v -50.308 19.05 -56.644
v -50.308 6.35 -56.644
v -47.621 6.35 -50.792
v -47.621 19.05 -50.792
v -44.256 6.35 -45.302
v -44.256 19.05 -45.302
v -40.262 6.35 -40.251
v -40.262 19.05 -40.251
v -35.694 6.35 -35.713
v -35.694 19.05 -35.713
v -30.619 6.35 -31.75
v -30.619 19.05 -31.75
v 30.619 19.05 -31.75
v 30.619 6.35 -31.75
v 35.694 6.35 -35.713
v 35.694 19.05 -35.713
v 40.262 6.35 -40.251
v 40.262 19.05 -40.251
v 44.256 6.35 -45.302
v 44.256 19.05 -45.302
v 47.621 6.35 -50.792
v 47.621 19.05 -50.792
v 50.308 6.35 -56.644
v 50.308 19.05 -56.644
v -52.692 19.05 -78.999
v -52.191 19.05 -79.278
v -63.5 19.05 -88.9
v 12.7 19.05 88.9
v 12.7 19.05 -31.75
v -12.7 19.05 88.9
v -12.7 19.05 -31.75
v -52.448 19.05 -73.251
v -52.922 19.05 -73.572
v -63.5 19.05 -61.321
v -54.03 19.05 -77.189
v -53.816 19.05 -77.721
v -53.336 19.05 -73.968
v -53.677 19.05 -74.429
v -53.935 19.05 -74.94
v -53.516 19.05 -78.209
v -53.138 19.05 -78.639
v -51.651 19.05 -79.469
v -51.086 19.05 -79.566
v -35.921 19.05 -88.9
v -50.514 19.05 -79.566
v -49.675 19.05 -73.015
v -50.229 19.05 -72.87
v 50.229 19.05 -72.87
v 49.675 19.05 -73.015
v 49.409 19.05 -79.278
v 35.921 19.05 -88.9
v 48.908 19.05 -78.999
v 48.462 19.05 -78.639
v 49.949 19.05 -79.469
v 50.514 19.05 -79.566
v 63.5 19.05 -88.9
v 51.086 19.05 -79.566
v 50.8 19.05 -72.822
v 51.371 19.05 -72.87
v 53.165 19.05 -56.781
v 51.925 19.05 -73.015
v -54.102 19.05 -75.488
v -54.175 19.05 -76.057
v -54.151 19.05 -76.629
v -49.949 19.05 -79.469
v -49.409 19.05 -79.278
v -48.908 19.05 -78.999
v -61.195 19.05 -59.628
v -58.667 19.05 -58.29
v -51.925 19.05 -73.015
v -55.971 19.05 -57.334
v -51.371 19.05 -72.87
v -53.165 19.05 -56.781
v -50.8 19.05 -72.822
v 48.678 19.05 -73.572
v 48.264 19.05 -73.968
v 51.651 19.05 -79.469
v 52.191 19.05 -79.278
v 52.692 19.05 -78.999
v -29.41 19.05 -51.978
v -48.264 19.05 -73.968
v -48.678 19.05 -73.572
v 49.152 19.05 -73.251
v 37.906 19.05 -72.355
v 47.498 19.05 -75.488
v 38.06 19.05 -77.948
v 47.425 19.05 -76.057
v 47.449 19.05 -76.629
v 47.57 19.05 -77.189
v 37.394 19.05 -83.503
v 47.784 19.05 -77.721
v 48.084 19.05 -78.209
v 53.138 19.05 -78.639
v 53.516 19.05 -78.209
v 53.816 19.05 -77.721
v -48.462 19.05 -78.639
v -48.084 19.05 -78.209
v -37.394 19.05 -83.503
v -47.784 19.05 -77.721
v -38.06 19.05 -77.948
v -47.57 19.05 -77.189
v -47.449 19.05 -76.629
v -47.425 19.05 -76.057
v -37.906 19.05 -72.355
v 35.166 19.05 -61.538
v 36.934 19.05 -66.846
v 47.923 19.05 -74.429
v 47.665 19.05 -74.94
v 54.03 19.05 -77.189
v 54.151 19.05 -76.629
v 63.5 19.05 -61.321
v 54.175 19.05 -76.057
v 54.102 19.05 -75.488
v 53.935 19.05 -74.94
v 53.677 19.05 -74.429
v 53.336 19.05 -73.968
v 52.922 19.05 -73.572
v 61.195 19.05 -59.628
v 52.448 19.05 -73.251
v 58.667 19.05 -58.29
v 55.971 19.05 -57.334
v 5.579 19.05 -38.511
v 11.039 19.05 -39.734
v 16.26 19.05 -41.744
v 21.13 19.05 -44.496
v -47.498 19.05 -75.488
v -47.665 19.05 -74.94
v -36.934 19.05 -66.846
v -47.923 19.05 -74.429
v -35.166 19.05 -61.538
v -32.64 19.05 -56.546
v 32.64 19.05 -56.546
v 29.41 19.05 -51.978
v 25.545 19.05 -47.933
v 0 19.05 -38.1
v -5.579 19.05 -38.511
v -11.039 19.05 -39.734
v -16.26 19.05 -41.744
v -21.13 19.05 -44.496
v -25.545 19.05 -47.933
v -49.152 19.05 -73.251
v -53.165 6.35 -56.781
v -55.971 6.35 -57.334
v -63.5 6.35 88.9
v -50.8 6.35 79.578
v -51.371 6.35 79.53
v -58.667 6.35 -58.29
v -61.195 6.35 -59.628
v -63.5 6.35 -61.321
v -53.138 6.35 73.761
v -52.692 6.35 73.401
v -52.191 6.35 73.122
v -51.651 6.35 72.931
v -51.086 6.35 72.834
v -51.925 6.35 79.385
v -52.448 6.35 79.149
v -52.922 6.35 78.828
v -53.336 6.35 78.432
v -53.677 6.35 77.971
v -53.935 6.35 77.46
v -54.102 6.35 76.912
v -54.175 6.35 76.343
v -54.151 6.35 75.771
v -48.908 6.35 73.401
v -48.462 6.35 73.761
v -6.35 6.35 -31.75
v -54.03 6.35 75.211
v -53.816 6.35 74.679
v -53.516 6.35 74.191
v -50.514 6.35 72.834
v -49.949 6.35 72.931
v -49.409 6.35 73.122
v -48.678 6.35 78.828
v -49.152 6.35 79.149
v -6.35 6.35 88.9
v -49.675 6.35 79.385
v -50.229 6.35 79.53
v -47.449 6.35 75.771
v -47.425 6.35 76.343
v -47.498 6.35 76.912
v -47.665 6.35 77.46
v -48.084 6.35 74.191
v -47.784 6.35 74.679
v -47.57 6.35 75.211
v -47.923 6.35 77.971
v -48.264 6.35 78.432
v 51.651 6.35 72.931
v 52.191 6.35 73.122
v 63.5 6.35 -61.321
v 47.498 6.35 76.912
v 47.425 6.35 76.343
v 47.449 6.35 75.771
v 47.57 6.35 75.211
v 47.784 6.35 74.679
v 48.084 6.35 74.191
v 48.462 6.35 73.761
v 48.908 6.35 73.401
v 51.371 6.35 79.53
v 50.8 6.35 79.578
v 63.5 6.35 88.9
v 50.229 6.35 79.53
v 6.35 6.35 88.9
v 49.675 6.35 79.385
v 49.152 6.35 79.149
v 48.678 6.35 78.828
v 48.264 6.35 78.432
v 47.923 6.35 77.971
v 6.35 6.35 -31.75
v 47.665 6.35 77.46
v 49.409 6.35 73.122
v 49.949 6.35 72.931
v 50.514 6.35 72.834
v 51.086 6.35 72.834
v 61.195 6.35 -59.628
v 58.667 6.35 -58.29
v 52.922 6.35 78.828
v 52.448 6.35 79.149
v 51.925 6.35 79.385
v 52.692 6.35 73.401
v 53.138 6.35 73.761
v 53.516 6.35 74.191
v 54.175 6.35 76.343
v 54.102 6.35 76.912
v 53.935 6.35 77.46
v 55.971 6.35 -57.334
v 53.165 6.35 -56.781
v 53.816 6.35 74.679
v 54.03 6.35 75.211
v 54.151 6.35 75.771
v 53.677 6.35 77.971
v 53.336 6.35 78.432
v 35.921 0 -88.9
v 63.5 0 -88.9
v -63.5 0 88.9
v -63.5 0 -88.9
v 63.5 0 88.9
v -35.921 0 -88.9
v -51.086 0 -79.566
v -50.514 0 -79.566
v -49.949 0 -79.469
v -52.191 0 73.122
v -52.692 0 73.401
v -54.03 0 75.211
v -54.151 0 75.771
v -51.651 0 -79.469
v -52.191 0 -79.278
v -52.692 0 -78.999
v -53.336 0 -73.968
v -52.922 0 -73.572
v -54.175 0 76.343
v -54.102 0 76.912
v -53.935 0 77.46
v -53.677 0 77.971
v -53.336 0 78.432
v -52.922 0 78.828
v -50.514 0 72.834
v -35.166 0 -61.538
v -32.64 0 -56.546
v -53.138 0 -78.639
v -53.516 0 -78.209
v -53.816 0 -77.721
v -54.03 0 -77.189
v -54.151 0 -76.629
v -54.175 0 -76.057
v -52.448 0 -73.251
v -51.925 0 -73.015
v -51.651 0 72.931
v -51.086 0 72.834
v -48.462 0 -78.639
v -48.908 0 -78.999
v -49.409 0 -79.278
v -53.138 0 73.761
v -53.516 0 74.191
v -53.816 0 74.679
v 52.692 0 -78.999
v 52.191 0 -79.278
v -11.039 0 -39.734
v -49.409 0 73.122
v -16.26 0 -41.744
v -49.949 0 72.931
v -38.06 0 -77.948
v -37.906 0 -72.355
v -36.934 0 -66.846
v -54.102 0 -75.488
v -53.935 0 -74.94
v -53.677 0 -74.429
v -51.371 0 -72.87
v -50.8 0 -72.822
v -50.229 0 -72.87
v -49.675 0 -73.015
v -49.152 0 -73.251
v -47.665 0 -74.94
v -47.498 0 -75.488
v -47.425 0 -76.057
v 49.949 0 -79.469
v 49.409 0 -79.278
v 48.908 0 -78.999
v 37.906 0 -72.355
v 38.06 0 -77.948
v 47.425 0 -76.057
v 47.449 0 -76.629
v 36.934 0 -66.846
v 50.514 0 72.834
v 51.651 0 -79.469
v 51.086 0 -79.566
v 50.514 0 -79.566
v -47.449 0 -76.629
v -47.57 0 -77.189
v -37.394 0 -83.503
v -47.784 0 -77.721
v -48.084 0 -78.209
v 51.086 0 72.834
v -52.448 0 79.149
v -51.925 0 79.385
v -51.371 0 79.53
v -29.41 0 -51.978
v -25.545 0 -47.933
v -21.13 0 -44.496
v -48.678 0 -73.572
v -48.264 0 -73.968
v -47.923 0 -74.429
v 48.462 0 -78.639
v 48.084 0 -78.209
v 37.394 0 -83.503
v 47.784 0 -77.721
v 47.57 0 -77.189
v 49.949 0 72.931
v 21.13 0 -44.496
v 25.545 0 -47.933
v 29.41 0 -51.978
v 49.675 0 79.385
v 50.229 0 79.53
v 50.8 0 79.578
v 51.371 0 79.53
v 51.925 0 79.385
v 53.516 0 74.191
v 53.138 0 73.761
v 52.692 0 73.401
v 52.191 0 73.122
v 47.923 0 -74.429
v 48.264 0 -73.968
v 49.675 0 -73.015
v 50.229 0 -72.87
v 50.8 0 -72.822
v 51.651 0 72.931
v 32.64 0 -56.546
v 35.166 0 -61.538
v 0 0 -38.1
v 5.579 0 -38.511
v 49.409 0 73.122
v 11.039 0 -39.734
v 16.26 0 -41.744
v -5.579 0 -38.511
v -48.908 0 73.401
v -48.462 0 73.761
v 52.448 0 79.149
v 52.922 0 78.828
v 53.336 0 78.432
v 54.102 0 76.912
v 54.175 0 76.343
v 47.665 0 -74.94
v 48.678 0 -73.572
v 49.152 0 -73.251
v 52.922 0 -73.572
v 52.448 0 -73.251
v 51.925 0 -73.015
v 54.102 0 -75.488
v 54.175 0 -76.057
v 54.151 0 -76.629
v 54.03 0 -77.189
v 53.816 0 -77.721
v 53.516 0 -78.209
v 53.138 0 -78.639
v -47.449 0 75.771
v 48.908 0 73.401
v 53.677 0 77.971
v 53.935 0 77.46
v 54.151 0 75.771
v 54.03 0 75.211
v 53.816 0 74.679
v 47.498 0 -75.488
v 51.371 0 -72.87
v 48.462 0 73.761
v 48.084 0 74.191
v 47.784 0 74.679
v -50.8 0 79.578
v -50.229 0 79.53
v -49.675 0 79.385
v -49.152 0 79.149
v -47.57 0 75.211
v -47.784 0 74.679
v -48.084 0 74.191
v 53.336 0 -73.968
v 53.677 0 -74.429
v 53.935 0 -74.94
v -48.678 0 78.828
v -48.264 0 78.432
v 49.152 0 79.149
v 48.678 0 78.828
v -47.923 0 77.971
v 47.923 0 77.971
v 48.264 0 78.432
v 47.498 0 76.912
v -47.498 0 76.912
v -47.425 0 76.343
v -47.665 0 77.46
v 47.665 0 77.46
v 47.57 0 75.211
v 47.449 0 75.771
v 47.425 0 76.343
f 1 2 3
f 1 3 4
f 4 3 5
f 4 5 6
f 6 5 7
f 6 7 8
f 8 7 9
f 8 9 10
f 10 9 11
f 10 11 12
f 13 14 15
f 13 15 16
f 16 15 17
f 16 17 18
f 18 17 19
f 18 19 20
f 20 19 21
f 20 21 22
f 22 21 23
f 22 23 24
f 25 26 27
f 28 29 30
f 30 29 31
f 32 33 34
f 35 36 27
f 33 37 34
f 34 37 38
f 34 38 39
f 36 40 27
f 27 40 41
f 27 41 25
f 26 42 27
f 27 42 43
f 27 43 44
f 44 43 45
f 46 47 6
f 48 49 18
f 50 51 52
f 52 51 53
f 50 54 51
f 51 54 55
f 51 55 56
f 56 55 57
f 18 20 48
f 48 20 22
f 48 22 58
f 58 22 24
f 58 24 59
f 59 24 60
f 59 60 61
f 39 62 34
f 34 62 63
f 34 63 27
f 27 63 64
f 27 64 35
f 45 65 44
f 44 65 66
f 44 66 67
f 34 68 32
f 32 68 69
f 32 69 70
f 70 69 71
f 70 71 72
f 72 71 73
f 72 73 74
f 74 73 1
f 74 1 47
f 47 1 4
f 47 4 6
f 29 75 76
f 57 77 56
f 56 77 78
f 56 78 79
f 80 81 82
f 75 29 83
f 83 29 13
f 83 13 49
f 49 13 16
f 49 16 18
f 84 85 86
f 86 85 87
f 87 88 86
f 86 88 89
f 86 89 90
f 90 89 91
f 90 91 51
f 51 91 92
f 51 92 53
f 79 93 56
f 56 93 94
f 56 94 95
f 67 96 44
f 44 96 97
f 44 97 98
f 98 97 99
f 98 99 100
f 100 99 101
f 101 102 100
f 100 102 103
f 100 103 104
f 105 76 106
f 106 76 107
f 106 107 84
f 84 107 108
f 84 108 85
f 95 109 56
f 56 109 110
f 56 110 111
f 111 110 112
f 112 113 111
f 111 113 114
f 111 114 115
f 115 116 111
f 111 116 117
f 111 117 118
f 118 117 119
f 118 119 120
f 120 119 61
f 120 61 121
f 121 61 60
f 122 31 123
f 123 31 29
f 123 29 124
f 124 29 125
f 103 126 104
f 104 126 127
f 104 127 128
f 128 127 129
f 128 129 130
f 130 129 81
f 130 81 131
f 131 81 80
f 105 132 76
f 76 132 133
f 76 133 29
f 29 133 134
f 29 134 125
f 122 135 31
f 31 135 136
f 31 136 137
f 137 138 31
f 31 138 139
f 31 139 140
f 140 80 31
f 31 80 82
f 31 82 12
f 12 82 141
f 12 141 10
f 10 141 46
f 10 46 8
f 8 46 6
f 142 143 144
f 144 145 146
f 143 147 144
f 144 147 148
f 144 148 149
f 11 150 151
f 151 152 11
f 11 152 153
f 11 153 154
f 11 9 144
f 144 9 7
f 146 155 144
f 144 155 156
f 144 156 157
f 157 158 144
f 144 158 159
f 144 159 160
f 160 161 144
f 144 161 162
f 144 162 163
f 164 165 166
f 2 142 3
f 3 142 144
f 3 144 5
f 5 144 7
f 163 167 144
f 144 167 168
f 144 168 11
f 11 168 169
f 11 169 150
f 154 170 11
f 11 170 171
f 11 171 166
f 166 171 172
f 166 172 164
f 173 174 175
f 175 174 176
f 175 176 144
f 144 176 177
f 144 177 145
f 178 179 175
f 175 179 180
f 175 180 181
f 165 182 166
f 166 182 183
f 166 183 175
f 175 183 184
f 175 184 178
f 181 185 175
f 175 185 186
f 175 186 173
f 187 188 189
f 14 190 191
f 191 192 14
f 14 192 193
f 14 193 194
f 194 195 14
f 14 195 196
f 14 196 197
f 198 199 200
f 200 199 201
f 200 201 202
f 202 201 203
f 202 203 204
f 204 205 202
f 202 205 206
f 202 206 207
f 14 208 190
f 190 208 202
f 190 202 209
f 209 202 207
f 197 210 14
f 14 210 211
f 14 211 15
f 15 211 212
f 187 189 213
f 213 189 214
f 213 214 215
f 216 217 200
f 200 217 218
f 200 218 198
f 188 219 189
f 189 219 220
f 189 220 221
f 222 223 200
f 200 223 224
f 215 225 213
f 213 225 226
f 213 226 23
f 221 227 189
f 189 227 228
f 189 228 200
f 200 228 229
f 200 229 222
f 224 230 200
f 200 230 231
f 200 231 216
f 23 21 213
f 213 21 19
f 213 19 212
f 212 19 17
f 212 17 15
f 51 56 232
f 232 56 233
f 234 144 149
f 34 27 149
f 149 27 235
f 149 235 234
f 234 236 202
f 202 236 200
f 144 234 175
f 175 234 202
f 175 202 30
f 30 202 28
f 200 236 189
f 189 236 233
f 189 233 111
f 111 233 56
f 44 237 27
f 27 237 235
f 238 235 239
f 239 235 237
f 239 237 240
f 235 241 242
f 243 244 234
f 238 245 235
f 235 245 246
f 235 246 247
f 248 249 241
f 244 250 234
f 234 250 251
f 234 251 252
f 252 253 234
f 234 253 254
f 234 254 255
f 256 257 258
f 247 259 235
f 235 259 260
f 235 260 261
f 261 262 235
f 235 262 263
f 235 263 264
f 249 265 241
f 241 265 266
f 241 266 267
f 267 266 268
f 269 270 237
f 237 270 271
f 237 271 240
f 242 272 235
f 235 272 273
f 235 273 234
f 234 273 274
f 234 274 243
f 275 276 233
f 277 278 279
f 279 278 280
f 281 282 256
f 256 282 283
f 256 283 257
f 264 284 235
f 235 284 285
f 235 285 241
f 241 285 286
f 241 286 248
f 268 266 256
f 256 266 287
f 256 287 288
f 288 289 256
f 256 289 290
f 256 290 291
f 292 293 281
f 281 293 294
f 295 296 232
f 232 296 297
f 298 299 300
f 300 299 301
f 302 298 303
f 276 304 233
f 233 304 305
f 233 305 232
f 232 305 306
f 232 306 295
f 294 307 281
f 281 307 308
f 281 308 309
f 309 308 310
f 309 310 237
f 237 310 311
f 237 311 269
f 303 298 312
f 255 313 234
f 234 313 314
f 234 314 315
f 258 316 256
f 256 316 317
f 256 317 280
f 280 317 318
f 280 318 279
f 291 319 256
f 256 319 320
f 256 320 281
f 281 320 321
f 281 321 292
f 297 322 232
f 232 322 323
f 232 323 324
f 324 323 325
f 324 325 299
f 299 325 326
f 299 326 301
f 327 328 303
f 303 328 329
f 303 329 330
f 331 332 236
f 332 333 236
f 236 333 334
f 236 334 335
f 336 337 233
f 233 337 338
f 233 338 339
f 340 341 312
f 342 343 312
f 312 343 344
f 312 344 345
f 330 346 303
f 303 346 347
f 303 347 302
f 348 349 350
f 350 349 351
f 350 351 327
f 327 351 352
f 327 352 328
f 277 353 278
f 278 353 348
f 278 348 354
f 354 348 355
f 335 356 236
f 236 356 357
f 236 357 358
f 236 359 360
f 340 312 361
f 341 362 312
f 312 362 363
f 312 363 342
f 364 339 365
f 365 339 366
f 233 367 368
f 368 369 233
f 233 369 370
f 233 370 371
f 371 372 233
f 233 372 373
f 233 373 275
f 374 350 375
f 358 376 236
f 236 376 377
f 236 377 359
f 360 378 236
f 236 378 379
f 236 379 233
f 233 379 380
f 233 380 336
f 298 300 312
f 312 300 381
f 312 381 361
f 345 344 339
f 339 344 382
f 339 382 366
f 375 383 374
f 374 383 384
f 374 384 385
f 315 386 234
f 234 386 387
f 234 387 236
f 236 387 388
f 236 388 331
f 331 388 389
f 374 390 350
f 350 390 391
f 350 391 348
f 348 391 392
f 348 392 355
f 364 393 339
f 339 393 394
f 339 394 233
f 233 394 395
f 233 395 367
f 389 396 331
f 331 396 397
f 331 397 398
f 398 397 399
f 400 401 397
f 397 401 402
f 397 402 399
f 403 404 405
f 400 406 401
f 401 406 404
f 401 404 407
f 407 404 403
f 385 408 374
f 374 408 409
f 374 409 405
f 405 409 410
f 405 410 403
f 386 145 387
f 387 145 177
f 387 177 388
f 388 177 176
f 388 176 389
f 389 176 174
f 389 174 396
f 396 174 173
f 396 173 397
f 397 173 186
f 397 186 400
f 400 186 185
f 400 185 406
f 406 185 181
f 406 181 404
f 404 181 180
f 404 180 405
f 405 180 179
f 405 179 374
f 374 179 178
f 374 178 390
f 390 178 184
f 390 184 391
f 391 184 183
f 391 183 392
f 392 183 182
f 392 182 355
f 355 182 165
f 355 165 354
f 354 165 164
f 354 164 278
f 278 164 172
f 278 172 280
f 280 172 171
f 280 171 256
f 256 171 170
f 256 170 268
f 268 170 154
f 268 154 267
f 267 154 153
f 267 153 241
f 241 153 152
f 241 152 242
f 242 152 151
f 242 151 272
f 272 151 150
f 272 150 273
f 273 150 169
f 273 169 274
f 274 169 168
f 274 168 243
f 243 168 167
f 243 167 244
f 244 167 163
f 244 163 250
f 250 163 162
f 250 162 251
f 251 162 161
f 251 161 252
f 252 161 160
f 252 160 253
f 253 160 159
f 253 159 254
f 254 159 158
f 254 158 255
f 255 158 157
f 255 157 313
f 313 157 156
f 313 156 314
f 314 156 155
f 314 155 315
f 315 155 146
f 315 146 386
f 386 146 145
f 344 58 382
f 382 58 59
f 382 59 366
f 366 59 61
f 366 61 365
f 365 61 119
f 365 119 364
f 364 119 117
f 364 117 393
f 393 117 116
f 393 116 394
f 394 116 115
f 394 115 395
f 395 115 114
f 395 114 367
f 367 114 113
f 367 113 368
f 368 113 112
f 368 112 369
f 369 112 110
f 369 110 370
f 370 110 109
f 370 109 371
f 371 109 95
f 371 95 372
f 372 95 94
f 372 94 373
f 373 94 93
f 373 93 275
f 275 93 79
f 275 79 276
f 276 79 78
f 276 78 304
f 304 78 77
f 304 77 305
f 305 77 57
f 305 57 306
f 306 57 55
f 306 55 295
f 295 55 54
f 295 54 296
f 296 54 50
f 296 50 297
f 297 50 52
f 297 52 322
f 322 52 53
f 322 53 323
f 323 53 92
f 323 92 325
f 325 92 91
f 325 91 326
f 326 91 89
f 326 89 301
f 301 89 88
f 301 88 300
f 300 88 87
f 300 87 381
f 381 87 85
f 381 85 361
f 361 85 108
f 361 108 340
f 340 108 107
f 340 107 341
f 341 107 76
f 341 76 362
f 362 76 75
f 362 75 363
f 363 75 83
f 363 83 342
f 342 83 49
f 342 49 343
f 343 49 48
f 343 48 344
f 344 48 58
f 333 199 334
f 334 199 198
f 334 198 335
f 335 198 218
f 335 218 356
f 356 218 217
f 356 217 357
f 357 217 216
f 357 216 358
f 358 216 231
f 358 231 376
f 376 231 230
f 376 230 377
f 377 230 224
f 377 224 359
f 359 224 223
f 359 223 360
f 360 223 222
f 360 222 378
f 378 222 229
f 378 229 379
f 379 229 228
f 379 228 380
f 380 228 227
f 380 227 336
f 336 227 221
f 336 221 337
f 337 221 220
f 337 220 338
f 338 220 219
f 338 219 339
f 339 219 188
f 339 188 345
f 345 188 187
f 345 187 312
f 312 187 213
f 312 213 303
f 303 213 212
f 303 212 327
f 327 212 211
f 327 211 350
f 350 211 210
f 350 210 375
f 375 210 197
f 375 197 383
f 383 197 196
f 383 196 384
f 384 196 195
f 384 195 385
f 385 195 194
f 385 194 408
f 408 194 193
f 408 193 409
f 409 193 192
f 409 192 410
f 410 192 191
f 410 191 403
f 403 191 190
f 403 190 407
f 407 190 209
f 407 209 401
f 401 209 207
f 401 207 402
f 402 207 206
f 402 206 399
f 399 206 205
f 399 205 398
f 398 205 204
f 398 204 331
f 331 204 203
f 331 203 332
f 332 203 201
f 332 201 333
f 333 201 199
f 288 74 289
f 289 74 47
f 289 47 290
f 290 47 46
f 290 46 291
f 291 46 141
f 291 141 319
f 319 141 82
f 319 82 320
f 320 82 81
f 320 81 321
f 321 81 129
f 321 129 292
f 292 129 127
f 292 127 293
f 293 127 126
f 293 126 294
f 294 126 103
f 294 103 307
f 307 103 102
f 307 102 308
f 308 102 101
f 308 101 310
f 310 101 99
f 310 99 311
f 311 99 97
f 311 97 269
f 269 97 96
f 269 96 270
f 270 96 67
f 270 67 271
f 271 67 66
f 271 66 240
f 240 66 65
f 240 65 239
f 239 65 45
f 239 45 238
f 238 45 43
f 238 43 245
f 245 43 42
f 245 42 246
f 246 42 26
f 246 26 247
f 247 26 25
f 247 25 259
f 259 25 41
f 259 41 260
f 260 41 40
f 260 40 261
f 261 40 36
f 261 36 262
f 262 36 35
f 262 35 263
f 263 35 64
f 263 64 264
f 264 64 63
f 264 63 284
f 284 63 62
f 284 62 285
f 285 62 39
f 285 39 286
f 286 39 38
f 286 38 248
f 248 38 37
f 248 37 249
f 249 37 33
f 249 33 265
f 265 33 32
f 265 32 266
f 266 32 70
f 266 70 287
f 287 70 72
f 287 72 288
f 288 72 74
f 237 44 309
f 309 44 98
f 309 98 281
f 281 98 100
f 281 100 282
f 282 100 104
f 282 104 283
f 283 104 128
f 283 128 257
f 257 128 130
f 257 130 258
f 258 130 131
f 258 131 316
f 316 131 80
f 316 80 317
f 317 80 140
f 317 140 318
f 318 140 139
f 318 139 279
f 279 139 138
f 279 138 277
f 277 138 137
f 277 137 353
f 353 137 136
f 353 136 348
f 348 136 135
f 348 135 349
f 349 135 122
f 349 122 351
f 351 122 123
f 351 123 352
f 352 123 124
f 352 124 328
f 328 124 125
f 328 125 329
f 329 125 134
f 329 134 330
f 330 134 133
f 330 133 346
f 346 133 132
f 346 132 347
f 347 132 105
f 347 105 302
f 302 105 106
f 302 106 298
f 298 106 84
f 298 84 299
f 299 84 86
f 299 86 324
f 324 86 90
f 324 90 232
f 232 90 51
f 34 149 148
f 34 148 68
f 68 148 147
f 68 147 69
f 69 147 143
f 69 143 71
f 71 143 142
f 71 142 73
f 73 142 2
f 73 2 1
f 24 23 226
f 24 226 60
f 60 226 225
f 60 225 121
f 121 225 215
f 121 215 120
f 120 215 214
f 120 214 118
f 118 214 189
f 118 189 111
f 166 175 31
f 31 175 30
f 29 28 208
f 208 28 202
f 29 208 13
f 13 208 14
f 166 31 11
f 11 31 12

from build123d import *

# Parameters (mm, degrees)
SKETCH1_W                    = 127
SKETCH1_H                    = 177.8
BOSS_EXTRUDE1_DEPTH          = 6.35
H_0_266_DIAMETER_HOLE1_D     = 6.7564
H_0_266_DIAMETER_HOLE1_DEPTH = 16.51
H_0_266_DIAMETER_HOLE1_TIP   = 2.029827343
SKETCH4_R                    = 38.1
CUT_EXTRUDE1_DEPTH           = 6.35
SKETCH5_R                    = 3.3782
BOSS_EXTRUDE2_DEPTH          = 12.7
BOSS_EXTRUDE3_DEPTH          = 121.666
SKETCH7_W                    = 27.292671225
SKETCH7_H                    = 12.7
CUT_EXTRUDE2_DEPTH           = 120.65


with BuildPart() as part:
    # Sketch1 → Boss-Extrude1 (new body)
    with BuildSketch(Plane(origin=(0, 0, 0), x_dir=(1, 0, 0), z_dir=(0, 1, 0))):
        Rectangle(SKETCH1_W, SKETCH1_H)
    extrude(amount=BOSS_EXTRUDE1_DEPTH)

    # H (0.266) Diameter Hole1
    with Locations(Plane(origin=(0, 6.35, 0), x_dir=(1, 0, 0), z_dir=(0, 1, 0))):
        with Locations((-50.8, 76.2), (50.8, -76.2), (50.8, 76.2), (-50.8, -76.2)):
            Hole(H_0_266_DIAMETER_HOLE1_D / 2, depth=H_0_266_DIAMETER_HOLE1_DEPTH)
            with Locations((0, 0, -(H_0_266_DIAMETER_HOLE1_DEPTH + H_0_266_DIAMETER_HOLE1_TIP / 2))):  # 118° drill point
                Cone(0, H_0_266_DIAMETER_HOLE1_D / 2, H_0_266_DIAMETER_HOLE1_TIP, mode=Mode.SUBTRACT)

    # Sketch4 → Cut-Extrude1 (cut)
    with BuildSketch(Plane(origin=(0, 6.35, 0), x_dir=(1, 0, 0), z_dir=(0, 1, 0))):
        with Locations((0, 76.2)):
            Circle(SKETCH4_R)
    extrude(amount=-CUT_EXTRUDE1_DEPTH, mode=Mode.SUBTRACT)

    # Sketch5 → Boss-Extrude2 (add)
    with BuildSketch(Plane(origin=(0, 6.35, 0), x_dir=(1, 0, 0), z_dir=(0, 1, 0))):
        with BuildLine():
            Line((-35.921024484, 88.9), (-63.5, 88.9))
            Line((-63.5, 88.9), (-63.5, 61.321024484))
            ThreePointArc((-63.5, 61.321024484), (-57.336478943, 57.762311549), (-50.307743234, 56.644141653))
            ThreePointArc((-50.307743234, 56.644141653), (0, 22.225), (50.307743234, 56.644141653))
            ThreePointArc((50.307743234, 56.644141653), (57.336478943, 57.762311549), (63.5, 61.321024484))
            Line((63.5, 61.321024484), (63.5, 88.9))
            Line((63.5, 88.9), (35.921024484, 88.9))
            ThreePointArc((35.921024484, 88.9), (0, 38.1), (-35.921024484, 88.9))
        make_face()
        with Locations(Location((50.8, 76.2, 0), (0, 0, 270))):
            Circle(SKETCH5_R, mode=Mode.SUBTRACT)
        with Locations(Location((-50.8, 76.2, 0), (0, 0, 270))):
            Circle(SKETCH5_R, mode=Mode.SUBTRACT)
    extrude(amount=BOSS_EXTRUDE2_DEPTH)

    # Sketch6 → Boss-Extrude3 (add)
    with BuildSketch(Plane.XY.offset(88.9)):
        Polygon((-12.7, 19.05), (-6.35, 6.35), (6.35, 6.35), (12.7, 19.05), align=None)
    extrude(amount=-BOSS_EXTRUDE3_DEPTH)

    # Sketch7 → Cut-Extrude2 (cut)
    with BuildSketch(Plane.XY.offset(88.9)):
        with Locations((-36.661407622, 12.7)):
            Rectangle(SKETCH7_W, SKETCH7_H)
        Polygon((-23.015072009, 19.05), (-23.015072009, 6.35), (-6.35, 6.35), (-12.7, 19.05), align=None)
        Polygon((6.35, 6.35), (23.015072009, 6.35), (23.015072009, 19.05), (12.7, 19.05), align=None)
        with Locations((36.661407622, 12.7)):
            Rectangle(SKETCH7_W, SKETCH7_H)
    extrude(amount=-CUT_EXTRUDE2_DEPTH, mode=Mode.SUBTRACT)


solid = part.part
